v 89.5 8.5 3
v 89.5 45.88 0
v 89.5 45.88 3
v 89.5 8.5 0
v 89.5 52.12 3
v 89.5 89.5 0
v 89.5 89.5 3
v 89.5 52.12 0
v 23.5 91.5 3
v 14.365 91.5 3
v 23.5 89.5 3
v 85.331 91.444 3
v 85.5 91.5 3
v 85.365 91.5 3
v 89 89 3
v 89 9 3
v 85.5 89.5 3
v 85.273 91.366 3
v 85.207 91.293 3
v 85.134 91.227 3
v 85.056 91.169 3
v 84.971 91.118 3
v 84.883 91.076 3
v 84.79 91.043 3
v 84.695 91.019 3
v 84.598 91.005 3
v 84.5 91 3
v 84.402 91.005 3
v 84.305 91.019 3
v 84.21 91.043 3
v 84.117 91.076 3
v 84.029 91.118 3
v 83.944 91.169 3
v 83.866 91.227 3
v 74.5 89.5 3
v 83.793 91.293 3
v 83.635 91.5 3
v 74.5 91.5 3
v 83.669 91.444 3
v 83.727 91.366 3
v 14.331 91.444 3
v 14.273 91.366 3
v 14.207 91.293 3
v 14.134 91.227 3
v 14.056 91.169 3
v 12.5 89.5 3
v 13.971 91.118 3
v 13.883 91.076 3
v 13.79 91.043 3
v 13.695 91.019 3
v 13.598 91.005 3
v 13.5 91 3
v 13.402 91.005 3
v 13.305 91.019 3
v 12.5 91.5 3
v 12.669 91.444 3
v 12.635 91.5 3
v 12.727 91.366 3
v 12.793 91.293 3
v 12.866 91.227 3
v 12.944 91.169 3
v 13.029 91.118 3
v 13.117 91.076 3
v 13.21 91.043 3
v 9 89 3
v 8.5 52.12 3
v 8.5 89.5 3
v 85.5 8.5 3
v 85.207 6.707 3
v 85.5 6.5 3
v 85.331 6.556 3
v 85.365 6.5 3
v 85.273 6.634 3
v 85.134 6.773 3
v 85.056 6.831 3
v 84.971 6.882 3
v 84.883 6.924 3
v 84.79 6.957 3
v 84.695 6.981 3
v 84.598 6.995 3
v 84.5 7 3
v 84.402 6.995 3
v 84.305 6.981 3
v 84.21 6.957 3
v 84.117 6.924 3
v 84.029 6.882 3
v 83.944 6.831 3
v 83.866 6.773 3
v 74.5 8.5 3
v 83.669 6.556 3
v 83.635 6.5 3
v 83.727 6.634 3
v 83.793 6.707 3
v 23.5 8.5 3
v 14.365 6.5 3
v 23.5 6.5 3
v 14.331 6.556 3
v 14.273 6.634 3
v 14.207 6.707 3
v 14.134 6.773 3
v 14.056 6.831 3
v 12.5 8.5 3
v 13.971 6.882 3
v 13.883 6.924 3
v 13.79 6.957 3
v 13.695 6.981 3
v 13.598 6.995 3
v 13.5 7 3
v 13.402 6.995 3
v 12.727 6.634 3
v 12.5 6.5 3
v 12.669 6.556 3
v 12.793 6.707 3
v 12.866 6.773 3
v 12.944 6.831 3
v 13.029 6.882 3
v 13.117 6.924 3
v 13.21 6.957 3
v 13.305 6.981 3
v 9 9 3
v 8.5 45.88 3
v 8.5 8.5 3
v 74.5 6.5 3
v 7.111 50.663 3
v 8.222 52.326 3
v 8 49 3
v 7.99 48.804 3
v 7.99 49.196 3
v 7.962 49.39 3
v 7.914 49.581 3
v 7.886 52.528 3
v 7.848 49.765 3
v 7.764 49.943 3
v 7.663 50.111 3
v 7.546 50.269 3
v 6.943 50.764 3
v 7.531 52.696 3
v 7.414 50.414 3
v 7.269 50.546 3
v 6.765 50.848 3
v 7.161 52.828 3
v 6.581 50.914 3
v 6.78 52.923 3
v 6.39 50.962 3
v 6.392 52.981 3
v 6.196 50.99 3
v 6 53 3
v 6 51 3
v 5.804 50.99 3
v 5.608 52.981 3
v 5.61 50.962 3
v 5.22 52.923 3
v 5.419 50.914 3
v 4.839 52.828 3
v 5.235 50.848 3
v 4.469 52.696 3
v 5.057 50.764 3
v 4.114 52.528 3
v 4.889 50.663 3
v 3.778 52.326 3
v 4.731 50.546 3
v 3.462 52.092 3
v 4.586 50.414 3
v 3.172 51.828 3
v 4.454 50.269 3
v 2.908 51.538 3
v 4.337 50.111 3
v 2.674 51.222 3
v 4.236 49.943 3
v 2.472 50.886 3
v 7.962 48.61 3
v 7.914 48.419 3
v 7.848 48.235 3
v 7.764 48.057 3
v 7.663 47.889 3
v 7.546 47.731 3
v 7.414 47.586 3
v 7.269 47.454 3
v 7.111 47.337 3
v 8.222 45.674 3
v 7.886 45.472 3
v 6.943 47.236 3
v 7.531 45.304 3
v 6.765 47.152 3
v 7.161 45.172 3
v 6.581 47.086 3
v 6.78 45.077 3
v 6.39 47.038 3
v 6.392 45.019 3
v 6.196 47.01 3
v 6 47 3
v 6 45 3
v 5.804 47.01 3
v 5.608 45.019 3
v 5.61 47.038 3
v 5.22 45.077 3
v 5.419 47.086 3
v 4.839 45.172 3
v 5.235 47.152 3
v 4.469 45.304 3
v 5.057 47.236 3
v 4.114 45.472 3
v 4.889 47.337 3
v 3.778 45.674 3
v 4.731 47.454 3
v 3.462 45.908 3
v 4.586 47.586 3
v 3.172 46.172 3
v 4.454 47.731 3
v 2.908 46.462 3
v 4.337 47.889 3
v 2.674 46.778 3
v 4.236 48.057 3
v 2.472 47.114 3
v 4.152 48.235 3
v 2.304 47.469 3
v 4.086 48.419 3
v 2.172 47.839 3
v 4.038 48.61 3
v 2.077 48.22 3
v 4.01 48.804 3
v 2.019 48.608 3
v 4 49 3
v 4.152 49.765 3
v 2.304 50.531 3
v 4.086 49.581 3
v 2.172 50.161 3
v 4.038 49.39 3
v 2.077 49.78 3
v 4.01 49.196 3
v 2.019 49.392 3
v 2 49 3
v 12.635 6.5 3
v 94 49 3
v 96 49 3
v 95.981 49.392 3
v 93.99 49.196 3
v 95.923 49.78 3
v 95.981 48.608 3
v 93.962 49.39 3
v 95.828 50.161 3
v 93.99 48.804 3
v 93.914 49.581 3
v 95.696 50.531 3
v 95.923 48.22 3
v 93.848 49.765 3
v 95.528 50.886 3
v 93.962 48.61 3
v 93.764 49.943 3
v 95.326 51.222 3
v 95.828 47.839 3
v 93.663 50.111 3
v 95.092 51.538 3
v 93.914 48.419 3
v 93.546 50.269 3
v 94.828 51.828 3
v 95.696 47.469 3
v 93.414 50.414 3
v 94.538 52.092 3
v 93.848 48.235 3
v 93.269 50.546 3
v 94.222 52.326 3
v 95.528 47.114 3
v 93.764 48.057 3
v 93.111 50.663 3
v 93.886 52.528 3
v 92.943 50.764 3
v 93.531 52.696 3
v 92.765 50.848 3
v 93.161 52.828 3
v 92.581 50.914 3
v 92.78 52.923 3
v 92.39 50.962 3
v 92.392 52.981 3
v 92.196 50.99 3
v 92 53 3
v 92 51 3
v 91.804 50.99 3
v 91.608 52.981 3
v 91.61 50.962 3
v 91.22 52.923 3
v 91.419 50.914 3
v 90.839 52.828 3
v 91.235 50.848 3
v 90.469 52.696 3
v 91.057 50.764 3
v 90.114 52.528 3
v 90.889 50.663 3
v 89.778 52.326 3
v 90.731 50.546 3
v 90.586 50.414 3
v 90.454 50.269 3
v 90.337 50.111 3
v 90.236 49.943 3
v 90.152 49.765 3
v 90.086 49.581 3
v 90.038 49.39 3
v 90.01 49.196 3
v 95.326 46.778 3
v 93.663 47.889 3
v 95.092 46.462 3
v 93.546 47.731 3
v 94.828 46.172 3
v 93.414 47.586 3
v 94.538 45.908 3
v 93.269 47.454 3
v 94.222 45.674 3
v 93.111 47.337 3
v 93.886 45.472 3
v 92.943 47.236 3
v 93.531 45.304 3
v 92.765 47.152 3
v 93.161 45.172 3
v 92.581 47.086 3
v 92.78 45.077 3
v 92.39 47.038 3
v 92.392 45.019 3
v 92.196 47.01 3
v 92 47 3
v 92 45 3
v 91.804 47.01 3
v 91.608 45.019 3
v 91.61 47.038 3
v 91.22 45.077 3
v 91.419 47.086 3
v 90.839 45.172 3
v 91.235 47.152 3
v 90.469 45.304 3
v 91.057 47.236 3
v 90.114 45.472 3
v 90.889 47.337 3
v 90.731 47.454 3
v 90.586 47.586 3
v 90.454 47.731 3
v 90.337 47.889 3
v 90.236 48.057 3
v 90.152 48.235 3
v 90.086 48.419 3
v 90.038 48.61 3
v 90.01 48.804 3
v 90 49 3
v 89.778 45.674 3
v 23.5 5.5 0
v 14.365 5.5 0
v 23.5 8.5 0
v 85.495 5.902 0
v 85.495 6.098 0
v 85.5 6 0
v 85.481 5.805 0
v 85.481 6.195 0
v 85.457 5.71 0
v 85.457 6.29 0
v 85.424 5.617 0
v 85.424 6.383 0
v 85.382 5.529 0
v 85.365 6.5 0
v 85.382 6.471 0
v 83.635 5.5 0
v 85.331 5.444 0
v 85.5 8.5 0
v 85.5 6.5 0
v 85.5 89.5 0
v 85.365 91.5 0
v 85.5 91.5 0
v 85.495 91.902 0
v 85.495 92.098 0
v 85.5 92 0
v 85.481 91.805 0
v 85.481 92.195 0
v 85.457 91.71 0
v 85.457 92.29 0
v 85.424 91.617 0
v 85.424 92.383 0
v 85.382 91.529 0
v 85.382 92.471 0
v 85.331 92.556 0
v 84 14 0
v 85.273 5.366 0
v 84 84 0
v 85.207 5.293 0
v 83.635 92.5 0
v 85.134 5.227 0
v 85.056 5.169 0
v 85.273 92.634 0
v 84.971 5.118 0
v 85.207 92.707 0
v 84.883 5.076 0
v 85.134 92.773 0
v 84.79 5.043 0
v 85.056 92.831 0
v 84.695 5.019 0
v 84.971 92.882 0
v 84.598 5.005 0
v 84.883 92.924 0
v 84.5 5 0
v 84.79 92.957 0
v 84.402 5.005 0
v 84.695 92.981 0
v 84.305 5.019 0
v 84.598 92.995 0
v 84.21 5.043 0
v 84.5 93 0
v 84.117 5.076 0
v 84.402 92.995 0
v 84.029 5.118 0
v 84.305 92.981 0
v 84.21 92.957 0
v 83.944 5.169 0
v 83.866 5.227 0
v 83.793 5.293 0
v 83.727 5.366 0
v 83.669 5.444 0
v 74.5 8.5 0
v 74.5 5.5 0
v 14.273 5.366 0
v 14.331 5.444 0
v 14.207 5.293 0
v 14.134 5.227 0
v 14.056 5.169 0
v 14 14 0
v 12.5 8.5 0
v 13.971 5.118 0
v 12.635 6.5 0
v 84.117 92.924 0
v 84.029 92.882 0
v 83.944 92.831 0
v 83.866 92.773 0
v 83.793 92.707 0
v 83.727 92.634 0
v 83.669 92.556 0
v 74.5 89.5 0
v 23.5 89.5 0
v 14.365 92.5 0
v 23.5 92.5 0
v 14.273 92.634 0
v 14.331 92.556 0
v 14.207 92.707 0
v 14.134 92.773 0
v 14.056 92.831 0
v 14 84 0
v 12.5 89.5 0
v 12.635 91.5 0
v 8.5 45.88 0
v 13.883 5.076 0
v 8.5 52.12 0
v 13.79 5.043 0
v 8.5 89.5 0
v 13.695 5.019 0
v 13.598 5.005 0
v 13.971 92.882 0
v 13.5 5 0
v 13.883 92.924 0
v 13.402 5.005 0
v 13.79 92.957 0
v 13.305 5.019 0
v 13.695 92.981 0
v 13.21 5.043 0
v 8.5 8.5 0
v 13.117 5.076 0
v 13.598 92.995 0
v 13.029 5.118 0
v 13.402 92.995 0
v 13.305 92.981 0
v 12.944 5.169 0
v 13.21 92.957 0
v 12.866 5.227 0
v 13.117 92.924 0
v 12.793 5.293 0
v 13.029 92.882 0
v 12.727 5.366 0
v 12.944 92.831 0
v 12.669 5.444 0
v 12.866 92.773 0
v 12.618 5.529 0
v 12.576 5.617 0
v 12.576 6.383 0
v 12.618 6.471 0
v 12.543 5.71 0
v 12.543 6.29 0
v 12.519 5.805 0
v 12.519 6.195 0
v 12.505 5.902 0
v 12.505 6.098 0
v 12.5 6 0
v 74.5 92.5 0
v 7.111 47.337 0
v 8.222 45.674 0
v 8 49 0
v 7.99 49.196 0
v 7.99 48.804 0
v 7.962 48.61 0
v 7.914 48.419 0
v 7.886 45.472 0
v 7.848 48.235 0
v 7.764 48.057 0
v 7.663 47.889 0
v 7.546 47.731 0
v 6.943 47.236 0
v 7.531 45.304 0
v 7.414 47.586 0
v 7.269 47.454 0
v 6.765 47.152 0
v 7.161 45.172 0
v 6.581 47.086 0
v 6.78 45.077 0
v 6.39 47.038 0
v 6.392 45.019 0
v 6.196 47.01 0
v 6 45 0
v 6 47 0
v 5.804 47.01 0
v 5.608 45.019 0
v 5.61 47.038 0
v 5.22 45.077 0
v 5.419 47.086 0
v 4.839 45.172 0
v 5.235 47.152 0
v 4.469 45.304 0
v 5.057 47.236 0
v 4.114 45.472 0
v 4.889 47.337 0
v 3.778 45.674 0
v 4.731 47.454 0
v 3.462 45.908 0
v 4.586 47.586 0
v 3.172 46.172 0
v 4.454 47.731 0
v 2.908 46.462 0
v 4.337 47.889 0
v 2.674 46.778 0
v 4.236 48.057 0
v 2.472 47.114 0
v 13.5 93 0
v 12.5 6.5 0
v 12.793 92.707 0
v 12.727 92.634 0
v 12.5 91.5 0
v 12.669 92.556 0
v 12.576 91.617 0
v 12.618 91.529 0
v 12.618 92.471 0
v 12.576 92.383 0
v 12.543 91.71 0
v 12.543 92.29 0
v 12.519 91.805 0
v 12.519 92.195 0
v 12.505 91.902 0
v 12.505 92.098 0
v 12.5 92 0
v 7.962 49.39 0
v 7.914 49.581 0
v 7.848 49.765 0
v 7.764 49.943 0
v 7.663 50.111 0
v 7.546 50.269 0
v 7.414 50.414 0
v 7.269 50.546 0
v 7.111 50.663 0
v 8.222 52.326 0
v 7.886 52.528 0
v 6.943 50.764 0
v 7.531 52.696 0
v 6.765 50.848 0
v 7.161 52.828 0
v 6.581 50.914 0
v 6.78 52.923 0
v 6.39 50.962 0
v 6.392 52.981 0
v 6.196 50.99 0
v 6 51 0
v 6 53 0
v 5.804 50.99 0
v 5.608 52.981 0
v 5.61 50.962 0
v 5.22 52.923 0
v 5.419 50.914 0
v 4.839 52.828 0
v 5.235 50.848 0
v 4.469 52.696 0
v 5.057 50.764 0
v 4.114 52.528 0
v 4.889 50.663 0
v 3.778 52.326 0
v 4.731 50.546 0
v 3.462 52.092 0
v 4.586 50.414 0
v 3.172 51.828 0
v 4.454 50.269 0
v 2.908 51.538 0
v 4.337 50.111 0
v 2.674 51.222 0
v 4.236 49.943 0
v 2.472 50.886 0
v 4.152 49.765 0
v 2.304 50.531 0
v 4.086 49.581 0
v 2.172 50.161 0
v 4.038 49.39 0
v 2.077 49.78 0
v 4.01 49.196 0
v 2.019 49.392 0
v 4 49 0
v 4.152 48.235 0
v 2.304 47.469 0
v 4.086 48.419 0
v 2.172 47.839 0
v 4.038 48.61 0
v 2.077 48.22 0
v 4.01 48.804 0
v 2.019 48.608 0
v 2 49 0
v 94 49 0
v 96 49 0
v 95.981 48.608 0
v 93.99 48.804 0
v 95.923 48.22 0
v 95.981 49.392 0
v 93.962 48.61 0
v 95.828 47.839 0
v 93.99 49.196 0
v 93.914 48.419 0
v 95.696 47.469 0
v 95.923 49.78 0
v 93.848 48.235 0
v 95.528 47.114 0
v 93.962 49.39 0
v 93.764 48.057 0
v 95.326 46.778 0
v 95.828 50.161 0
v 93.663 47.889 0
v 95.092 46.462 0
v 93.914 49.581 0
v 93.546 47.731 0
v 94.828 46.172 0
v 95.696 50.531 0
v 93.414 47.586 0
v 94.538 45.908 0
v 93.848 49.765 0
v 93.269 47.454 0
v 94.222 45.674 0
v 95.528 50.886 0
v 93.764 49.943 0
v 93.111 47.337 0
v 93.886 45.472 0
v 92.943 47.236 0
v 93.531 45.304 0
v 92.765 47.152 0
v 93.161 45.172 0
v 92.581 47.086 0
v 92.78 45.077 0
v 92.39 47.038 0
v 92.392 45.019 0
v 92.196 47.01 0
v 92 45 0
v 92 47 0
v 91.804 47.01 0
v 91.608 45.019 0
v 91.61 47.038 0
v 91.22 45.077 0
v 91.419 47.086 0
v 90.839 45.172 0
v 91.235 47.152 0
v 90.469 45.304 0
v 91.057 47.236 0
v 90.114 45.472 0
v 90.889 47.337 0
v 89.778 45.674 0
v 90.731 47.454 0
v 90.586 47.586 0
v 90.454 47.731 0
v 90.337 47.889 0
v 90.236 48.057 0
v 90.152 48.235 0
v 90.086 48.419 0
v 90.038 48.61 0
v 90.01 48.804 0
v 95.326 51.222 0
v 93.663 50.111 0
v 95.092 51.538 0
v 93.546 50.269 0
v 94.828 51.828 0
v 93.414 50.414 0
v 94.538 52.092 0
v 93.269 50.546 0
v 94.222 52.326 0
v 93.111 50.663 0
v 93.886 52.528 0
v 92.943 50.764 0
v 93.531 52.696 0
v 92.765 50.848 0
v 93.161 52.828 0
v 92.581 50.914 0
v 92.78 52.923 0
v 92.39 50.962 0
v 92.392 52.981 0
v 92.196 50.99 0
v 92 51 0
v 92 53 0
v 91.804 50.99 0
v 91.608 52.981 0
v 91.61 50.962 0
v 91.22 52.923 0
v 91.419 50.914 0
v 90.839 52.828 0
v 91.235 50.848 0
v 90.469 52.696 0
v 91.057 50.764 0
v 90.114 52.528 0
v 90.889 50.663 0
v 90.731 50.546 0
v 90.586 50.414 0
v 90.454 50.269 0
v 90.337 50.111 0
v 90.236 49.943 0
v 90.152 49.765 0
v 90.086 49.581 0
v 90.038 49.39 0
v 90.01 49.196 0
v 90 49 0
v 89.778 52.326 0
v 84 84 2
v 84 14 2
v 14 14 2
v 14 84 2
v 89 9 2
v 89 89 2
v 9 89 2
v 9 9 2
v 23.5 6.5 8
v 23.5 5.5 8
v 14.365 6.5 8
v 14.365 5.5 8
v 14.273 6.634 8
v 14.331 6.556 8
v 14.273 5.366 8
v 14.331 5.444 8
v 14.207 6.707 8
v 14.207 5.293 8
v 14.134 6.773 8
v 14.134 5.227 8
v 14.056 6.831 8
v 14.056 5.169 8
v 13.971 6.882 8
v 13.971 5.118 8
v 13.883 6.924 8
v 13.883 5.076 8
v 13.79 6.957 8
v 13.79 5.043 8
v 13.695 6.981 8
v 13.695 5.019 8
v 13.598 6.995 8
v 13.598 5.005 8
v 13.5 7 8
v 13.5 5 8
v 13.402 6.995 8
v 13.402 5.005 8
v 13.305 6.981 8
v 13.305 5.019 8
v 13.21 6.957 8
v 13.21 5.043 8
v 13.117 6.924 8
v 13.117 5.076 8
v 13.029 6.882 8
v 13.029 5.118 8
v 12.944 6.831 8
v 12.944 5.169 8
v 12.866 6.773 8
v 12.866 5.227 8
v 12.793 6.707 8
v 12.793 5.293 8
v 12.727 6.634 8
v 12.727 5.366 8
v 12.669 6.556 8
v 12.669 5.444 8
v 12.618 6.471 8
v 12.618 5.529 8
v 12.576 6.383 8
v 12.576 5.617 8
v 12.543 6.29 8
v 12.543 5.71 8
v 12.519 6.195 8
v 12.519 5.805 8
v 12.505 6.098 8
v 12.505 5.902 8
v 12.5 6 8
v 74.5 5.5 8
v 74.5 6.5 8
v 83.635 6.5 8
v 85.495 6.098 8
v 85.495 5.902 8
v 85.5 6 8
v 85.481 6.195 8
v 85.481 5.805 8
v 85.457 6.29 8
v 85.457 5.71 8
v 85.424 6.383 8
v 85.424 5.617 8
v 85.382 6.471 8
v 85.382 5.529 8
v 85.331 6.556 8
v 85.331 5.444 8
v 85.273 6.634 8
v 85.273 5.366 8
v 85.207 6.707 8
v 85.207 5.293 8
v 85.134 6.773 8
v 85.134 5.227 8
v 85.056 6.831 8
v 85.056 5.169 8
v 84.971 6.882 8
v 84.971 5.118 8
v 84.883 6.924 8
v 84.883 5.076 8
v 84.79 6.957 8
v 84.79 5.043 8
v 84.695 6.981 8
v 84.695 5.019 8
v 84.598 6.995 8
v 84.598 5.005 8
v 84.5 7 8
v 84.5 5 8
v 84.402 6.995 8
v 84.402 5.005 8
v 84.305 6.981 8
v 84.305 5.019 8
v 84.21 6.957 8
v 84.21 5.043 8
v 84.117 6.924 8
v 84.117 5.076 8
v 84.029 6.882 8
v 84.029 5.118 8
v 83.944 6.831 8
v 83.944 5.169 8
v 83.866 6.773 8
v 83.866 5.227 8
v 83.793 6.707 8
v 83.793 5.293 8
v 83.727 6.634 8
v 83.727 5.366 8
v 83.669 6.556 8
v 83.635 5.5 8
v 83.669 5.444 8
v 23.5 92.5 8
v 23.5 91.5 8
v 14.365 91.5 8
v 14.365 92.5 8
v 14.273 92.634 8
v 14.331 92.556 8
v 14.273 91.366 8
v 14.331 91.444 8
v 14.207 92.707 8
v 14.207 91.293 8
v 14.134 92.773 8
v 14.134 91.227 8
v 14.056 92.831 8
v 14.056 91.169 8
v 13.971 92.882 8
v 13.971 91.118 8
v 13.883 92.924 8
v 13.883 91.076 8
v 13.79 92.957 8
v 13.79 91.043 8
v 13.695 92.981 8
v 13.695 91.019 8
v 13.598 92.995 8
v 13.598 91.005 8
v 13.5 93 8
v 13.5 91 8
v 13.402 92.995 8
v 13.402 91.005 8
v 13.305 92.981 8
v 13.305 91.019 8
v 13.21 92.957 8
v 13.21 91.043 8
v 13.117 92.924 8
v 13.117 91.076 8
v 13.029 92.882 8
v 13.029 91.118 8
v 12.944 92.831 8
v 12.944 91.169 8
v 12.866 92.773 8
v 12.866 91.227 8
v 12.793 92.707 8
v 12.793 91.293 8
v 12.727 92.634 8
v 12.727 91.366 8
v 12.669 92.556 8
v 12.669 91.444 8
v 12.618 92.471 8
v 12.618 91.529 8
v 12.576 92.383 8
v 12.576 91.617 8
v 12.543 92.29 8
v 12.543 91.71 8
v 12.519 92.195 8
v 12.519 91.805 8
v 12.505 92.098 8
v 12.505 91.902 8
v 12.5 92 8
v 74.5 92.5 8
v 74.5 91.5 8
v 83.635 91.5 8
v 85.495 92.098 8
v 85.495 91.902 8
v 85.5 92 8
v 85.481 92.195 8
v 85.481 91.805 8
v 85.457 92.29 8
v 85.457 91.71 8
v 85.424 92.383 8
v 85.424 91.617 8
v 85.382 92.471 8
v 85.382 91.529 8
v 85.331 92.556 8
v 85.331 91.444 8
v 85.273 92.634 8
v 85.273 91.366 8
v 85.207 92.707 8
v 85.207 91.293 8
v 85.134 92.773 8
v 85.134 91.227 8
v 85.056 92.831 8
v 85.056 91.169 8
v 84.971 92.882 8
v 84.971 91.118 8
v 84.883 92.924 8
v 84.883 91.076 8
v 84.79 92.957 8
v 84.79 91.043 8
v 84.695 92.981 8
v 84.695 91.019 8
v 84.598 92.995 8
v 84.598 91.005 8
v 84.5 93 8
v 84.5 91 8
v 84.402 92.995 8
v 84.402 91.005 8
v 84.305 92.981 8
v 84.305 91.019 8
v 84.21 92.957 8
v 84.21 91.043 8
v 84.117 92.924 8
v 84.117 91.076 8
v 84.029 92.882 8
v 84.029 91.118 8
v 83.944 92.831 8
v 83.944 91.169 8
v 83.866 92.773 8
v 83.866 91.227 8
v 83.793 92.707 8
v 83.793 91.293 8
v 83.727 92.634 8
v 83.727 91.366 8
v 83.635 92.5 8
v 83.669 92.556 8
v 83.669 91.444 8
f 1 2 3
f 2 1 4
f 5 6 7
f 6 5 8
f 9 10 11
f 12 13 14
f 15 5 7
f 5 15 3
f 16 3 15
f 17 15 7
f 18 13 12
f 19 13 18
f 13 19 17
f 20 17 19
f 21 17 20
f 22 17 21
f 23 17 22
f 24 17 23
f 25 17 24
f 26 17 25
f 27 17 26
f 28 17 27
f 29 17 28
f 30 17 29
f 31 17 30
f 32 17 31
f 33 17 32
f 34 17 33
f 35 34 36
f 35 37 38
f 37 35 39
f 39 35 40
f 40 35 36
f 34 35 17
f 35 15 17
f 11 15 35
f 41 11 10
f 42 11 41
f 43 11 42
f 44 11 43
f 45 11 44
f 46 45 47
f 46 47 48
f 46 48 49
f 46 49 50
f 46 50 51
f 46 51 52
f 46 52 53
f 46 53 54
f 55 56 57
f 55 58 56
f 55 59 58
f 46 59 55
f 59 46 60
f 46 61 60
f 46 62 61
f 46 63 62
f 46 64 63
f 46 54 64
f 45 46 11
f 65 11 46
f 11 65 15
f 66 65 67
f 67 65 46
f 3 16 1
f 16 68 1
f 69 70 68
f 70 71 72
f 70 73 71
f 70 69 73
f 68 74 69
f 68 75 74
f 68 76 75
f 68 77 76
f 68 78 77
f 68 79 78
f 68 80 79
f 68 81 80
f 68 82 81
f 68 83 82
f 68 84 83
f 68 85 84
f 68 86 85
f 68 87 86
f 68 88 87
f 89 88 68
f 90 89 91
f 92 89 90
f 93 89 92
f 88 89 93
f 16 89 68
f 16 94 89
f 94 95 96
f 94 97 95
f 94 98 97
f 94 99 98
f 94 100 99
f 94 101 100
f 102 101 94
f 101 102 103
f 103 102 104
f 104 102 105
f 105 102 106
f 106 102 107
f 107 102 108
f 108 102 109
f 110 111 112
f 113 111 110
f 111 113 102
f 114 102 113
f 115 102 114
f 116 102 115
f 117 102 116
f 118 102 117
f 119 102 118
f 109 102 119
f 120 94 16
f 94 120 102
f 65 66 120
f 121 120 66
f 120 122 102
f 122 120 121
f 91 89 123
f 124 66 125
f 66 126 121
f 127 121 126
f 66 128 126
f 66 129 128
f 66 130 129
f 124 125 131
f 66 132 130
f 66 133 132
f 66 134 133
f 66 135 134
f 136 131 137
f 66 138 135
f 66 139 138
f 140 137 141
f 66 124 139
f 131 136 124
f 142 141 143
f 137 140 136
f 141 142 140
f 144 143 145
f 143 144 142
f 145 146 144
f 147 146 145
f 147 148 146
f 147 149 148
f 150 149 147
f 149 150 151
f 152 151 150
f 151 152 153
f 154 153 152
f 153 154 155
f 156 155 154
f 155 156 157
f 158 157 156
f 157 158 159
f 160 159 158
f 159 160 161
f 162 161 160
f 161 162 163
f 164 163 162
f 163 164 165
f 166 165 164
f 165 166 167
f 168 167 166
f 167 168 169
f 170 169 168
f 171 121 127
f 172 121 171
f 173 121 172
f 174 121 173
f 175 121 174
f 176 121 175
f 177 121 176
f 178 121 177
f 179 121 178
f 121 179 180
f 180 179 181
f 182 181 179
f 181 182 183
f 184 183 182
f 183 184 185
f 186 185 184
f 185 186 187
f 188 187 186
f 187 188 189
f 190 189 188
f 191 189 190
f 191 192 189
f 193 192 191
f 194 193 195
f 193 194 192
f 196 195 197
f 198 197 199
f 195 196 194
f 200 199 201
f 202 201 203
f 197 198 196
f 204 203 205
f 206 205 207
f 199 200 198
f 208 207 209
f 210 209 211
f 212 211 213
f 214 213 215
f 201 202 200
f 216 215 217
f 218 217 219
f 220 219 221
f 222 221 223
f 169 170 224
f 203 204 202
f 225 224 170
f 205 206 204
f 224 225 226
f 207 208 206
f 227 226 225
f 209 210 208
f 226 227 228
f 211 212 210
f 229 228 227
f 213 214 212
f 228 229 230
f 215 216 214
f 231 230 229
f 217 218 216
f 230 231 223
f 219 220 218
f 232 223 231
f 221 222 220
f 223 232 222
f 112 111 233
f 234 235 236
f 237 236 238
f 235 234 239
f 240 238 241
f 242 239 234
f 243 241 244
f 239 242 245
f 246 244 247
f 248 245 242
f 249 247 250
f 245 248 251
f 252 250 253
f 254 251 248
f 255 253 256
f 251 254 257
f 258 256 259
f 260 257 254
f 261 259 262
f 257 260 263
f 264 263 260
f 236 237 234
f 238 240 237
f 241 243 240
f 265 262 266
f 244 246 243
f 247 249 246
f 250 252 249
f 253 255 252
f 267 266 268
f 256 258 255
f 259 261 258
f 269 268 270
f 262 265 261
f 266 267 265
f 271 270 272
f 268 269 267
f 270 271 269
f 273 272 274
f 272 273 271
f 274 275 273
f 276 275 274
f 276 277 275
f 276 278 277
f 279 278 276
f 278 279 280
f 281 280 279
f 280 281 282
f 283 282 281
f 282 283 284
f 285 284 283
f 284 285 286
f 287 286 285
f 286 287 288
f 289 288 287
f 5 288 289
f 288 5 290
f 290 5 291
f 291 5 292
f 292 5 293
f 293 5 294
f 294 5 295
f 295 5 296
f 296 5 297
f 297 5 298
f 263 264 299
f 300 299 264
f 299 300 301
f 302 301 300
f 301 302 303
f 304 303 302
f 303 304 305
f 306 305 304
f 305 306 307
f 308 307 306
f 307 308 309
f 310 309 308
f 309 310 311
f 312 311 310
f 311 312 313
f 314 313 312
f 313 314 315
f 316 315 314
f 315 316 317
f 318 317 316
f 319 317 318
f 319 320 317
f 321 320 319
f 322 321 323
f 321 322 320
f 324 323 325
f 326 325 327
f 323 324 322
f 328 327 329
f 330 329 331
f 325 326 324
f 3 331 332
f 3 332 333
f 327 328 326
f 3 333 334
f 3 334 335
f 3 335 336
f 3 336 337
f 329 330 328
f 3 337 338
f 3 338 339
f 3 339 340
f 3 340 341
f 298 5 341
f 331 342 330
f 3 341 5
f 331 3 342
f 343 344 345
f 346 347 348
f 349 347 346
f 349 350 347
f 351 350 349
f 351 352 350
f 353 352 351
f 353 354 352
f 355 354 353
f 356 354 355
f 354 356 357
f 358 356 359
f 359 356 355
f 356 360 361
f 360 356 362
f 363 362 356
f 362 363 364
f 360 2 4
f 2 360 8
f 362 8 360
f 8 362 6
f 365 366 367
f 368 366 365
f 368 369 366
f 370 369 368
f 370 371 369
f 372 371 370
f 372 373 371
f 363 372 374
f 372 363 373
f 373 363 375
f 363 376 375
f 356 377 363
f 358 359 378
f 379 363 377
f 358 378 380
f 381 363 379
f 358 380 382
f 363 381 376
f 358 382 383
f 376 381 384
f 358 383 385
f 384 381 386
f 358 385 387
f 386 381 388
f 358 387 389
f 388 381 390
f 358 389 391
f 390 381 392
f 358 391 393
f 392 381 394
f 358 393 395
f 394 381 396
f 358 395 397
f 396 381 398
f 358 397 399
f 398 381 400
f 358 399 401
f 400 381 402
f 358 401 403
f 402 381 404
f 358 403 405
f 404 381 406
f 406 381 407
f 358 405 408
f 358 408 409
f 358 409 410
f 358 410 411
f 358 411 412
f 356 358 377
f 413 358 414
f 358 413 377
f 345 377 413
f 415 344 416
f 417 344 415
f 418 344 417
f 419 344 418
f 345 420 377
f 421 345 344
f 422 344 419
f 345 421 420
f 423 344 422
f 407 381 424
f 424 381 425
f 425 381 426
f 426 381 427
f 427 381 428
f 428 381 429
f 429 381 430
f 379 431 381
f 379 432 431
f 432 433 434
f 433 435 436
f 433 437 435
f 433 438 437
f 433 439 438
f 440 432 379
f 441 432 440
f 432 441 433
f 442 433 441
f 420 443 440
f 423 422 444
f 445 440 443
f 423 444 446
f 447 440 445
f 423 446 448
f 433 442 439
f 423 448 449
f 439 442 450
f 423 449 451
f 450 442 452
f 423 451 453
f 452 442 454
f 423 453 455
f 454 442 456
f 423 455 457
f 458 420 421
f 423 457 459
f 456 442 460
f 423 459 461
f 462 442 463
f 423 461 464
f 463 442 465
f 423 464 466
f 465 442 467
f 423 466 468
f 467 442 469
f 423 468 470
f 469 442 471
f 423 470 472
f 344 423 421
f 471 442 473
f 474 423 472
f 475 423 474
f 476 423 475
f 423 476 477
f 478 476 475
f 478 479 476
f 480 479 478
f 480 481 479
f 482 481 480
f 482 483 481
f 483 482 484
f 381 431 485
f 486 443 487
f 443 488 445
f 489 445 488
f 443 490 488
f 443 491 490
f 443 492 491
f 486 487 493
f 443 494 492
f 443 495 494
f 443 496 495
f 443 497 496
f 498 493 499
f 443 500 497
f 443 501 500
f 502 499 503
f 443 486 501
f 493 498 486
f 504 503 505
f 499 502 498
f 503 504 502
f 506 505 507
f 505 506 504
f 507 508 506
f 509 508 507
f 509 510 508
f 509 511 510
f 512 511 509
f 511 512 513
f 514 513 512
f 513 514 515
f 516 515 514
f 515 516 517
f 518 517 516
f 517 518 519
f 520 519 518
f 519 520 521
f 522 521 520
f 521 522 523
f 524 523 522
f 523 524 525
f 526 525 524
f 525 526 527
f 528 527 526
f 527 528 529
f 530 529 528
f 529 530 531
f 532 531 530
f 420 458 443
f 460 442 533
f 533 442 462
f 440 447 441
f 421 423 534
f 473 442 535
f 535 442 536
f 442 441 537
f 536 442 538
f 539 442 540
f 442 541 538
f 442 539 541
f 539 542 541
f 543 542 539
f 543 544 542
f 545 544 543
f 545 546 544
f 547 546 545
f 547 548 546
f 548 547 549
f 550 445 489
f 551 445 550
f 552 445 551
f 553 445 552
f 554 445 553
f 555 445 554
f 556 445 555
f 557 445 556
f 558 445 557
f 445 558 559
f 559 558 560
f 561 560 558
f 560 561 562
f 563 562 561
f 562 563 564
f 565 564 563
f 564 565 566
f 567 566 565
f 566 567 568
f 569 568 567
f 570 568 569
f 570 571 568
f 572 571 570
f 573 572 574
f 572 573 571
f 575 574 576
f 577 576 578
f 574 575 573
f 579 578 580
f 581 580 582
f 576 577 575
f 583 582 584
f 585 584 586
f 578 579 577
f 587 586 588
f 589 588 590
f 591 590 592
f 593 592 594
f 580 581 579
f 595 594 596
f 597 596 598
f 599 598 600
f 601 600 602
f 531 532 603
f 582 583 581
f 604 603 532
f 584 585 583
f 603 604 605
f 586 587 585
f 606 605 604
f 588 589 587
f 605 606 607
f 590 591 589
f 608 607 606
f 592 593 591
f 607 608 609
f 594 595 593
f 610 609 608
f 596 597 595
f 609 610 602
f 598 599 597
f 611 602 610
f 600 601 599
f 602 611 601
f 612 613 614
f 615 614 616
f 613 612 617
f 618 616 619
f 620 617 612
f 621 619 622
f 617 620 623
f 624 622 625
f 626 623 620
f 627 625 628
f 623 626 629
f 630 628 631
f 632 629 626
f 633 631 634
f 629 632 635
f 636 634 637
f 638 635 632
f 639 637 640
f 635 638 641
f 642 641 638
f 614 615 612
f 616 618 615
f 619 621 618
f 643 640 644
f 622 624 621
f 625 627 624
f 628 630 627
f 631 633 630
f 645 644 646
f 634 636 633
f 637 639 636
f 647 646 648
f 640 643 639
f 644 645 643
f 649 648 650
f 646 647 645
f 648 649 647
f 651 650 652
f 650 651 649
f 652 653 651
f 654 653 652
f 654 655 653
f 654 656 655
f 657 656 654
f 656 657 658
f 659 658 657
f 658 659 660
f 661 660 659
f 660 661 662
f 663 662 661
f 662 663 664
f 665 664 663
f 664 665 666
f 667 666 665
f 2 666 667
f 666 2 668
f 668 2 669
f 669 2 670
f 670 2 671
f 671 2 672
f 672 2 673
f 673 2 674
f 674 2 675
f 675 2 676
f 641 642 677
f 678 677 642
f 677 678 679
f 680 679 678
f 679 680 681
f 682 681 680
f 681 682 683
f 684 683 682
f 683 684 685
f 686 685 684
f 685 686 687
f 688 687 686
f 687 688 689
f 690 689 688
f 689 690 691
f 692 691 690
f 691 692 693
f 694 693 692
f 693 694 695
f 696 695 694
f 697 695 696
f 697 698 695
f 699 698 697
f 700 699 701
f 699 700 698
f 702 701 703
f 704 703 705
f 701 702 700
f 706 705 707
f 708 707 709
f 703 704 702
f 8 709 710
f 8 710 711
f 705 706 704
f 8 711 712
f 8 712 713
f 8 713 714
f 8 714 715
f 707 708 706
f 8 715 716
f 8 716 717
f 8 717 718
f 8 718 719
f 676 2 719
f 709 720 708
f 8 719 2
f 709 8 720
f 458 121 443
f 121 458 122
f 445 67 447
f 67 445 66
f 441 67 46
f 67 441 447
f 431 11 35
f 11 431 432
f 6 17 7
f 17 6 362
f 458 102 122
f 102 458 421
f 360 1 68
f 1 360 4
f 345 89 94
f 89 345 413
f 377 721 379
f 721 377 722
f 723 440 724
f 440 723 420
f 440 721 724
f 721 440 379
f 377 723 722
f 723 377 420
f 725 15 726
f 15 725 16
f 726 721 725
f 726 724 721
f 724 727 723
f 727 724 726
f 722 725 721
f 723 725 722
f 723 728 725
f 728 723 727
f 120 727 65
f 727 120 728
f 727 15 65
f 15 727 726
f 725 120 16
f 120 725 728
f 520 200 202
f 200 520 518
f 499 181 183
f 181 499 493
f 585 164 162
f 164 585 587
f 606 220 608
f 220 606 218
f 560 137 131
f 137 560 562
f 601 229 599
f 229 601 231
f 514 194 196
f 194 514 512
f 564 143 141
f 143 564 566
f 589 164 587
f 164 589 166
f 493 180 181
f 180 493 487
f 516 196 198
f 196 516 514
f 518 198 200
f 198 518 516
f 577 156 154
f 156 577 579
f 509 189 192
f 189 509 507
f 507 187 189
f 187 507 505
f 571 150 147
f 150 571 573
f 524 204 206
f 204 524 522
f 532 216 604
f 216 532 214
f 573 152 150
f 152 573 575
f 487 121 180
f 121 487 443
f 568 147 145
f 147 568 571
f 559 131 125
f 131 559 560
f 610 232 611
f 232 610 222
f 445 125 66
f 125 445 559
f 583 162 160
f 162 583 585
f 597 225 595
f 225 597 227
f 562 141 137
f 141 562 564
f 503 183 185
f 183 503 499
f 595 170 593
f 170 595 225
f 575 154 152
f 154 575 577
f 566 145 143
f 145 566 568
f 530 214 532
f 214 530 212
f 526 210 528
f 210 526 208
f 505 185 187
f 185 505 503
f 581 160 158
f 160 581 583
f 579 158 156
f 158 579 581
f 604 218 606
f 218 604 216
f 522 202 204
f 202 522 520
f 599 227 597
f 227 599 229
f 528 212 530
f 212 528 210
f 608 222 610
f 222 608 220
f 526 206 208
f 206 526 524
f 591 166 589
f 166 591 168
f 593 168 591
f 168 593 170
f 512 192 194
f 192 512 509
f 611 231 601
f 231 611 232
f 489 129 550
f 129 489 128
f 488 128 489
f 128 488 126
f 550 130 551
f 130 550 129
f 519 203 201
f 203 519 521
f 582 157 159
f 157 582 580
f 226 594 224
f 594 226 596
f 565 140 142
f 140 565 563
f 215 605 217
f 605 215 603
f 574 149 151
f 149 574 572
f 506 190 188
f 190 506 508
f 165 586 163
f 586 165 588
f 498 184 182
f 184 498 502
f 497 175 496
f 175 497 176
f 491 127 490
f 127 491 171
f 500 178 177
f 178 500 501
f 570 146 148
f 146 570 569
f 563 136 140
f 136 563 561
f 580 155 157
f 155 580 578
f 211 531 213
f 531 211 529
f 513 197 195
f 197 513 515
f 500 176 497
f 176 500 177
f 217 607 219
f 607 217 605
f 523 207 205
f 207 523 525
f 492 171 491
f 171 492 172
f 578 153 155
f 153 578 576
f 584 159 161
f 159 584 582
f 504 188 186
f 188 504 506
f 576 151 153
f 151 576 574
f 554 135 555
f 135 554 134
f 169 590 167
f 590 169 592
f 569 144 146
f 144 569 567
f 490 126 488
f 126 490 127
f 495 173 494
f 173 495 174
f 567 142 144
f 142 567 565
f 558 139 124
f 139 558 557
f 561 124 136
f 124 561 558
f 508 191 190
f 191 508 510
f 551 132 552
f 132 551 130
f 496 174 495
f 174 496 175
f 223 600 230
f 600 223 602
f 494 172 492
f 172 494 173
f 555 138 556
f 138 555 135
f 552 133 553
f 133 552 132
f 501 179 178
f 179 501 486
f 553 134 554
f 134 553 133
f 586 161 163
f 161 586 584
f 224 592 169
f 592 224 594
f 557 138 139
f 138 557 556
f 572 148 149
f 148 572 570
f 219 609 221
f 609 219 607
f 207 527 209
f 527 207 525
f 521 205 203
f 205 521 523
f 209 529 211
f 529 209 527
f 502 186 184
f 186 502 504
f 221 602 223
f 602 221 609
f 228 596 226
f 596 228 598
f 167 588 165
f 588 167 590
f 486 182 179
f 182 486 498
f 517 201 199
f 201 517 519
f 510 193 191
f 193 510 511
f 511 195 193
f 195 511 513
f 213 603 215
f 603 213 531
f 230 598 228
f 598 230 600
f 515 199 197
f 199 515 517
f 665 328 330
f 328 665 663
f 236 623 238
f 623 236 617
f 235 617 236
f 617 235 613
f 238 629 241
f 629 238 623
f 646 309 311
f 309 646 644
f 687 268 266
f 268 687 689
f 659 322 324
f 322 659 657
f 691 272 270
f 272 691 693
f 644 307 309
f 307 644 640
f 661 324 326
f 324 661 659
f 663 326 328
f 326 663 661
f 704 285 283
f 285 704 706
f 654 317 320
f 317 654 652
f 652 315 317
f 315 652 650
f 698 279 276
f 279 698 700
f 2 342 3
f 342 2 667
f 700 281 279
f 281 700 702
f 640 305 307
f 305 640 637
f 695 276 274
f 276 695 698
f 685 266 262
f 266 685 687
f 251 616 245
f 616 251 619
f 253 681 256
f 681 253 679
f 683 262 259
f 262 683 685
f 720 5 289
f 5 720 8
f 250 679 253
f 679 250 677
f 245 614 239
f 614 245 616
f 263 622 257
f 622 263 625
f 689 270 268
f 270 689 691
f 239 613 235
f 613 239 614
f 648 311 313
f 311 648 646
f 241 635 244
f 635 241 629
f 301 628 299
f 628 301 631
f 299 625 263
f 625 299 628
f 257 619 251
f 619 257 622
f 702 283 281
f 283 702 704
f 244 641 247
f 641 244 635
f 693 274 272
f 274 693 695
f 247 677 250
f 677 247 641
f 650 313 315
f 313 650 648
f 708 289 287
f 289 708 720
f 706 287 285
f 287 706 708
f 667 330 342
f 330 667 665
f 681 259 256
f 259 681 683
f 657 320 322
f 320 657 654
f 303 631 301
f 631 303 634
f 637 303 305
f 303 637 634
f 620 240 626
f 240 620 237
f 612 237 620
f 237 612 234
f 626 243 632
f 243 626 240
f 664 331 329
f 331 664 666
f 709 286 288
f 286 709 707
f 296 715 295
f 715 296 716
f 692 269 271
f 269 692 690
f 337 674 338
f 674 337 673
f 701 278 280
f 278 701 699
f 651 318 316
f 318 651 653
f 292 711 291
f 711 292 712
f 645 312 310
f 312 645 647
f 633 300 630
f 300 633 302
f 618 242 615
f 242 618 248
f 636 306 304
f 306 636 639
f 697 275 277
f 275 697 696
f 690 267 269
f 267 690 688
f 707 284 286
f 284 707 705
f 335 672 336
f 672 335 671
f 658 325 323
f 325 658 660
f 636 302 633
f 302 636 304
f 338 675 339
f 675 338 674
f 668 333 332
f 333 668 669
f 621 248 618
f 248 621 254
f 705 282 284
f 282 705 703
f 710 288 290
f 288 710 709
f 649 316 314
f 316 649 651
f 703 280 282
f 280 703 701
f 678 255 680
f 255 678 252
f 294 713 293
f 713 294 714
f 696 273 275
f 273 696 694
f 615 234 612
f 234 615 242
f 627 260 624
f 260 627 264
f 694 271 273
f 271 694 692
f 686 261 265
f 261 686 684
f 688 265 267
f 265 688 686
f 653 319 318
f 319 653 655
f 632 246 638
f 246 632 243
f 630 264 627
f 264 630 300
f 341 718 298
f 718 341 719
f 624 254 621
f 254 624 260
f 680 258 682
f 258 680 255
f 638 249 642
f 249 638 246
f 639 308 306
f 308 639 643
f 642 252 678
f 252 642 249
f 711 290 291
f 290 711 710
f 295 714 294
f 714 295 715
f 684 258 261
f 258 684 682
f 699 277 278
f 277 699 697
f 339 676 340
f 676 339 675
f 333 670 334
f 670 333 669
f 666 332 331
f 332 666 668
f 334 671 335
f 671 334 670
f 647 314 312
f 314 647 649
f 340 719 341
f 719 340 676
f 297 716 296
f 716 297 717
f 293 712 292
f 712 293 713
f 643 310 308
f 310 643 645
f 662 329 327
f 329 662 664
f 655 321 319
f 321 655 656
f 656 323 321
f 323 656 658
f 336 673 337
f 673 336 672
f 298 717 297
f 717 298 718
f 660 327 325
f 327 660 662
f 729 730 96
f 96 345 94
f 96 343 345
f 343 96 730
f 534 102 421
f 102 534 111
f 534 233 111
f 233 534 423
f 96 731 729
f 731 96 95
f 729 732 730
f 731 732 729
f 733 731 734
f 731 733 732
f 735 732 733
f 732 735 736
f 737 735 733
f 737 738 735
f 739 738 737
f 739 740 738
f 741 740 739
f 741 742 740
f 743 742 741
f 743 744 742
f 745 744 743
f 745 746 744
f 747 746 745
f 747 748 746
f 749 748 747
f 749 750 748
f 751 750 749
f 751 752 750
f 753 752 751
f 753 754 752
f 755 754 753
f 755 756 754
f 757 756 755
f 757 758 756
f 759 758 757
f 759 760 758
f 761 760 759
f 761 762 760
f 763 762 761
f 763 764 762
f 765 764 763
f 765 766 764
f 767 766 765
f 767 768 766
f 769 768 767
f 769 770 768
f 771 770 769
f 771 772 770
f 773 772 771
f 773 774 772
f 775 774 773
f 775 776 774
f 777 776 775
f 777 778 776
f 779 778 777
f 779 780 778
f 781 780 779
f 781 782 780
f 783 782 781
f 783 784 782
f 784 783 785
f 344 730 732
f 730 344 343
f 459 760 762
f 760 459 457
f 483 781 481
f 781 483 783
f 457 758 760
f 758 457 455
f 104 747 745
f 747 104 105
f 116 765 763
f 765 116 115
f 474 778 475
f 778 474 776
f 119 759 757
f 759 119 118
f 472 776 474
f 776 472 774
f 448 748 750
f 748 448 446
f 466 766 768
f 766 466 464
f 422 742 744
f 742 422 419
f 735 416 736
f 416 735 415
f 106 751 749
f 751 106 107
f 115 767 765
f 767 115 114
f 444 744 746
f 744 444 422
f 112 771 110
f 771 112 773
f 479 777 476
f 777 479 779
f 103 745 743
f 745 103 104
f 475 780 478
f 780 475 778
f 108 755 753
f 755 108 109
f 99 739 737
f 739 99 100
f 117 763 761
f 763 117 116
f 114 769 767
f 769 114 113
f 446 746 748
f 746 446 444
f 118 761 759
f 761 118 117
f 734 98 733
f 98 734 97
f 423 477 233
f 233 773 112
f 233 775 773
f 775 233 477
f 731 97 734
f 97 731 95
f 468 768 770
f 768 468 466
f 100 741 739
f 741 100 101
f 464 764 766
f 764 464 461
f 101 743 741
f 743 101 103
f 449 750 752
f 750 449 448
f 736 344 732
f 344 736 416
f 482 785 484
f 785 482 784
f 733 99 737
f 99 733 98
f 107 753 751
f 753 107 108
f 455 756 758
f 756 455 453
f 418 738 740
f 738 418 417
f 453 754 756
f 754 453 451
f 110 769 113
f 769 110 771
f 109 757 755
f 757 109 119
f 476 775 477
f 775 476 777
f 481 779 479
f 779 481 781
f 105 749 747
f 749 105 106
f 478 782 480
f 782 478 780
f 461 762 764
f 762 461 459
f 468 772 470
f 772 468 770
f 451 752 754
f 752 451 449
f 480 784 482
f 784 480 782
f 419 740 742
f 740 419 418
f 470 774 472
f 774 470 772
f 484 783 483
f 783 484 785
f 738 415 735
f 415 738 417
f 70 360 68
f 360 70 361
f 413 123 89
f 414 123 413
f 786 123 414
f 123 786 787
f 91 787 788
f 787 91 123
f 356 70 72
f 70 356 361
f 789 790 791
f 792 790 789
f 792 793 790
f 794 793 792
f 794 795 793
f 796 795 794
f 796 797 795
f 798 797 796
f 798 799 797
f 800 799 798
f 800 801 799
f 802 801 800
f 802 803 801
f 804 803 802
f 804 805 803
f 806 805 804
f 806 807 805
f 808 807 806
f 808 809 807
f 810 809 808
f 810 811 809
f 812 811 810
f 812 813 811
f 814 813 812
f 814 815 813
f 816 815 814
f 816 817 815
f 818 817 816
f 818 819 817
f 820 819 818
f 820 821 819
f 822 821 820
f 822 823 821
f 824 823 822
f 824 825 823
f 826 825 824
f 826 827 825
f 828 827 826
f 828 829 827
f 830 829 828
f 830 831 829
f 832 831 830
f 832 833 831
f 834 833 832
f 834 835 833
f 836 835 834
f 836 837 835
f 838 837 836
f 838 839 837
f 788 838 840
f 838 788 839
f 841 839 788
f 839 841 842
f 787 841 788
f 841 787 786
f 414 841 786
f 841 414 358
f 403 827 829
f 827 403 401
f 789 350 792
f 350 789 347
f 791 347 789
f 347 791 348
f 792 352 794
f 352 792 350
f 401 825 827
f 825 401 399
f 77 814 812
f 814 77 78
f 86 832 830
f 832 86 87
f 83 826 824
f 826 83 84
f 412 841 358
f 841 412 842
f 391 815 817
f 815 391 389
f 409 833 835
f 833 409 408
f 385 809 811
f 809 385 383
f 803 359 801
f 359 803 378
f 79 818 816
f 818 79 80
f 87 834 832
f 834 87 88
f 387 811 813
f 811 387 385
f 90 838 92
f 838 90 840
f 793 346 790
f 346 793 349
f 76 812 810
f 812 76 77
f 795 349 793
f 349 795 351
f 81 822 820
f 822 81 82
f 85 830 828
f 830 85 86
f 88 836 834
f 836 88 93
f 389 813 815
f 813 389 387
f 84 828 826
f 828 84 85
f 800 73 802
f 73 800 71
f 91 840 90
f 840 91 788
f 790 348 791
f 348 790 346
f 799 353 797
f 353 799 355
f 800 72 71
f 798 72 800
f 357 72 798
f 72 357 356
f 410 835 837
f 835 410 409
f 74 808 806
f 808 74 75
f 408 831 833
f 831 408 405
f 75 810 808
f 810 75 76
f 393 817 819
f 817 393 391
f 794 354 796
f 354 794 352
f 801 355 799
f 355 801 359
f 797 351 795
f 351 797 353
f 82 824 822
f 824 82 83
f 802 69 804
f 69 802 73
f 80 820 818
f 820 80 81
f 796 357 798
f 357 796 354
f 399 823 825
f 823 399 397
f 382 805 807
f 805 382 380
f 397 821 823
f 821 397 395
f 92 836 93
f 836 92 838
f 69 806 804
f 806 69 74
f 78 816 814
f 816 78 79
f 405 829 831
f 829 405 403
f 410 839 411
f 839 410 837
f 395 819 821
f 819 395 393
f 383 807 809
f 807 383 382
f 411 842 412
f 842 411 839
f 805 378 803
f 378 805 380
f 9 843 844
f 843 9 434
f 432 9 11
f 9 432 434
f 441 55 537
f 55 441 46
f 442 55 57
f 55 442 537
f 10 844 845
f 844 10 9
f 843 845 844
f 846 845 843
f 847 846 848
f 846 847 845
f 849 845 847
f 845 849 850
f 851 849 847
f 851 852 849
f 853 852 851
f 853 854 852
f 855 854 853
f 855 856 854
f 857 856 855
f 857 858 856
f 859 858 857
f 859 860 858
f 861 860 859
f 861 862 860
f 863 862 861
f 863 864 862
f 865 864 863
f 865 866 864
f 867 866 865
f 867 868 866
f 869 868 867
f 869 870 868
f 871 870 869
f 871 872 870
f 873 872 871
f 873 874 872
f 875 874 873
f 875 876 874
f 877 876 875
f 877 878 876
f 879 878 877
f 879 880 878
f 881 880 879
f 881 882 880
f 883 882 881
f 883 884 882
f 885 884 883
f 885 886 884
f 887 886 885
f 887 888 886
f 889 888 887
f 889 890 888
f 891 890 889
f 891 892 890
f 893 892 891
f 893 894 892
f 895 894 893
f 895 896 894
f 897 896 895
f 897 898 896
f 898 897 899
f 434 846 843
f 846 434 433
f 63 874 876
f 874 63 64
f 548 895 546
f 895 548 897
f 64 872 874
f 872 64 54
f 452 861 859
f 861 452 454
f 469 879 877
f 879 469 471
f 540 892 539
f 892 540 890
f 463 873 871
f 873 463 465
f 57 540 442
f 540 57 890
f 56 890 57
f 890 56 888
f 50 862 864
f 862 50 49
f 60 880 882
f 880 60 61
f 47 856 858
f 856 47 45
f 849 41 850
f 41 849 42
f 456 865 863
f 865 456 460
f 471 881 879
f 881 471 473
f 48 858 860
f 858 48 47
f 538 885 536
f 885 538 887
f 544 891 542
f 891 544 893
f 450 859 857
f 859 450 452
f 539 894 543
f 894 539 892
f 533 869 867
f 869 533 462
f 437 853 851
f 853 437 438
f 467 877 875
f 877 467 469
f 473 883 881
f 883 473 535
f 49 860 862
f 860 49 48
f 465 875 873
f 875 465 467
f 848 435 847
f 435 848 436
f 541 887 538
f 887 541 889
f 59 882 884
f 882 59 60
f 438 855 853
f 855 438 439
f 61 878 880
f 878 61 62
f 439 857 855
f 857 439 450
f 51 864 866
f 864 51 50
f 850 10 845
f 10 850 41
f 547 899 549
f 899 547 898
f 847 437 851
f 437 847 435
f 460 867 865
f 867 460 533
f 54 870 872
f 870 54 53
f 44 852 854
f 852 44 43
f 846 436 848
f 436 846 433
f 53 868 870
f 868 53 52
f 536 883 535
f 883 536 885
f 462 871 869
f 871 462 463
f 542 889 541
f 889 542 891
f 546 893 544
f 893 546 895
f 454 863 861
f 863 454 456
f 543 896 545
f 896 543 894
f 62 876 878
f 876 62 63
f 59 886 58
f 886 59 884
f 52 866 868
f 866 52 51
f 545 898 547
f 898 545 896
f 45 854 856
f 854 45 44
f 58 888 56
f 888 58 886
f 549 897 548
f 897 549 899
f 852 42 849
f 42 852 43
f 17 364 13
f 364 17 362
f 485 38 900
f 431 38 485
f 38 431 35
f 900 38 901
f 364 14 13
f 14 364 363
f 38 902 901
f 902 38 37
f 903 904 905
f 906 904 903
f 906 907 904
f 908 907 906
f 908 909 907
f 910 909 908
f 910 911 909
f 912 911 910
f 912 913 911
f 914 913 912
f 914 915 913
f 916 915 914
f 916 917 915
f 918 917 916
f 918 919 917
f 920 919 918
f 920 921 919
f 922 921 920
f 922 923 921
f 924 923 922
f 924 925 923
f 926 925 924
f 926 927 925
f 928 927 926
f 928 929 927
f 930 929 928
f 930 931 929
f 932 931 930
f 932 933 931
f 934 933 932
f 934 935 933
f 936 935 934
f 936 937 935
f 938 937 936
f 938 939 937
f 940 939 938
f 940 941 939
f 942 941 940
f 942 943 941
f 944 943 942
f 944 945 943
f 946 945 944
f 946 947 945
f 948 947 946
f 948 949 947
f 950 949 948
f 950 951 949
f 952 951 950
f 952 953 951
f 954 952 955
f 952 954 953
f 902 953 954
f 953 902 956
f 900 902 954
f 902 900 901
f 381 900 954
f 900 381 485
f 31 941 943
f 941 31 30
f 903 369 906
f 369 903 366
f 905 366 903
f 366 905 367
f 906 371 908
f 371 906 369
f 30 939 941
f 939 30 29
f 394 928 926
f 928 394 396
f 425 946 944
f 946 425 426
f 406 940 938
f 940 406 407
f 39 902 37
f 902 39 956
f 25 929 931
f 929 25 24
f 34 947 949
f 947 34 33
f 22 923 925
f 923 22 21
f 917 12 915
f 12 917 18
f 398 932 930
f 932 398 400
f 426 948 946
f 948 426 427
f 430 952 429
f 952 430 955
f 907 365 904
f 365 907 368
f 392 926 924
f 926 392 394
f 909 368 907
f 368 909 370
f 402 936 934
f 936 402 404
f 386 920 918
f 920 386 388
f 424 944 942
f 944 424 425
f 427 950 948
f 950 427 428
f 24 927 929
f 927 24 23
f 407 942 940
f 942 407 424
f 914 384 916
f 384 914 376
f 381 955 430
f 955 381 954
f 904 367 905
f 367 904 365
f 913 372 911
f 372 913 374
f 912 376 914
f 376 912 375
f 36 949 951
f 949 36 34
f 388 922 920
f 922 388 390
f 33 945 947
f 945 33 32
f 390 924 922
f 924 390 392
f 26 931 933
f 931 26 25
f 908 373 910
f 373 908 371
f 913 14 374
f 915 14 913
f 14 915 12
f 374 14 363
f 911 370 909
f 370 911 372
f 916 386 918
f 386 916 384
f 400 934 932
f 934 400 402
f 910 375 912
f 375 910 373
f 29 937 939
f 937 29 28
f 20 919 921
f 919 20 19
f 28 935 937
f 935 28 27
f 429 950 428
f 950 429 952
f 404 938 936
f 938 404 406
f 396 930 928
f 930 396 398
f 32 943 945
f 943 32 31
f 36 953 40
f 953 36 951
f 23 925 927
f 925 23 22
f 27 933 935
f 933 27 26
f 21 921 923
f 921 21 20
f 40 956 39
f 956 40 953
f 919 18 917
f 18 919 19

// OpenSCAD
// ========================
// Parameters
// ========================

// Case (2 mm shorter than the bottom, aka 1 mm on each side)
case_width = 98;
case_height = 3;

// Outer cylinder
outer_r = 4;
outer_h = case_height;

// Inner hole
hole_r = 2;
hole_h = case_height;

// Hook's height
hook_h = 8;

// increase for smoother cone ($fn)
segments = 64;

// smooth corners
$fn = segments;

// ========================
// Cover for the NeoPixel panel
// ========================
module panel_cover() {
    difference() {

        translate([8.5, 8.5, 0])
            cube([81, 81, case_height]);

        // Bezel to hold the NeoPixel panel

        translate([14, 14, 0])
            cube([70, 70, case_height]);

        // Field for the NeoPixel panel

        translate([9, 9, case_height-1])
            cube([80, 80, 1]);

    }
}

// ========================
// Holders for the NeoPixel panel
// ========================
module panel_holders() {
    difference() {

    union() {
        // Middle left
        translate([2, case_width/2-outer_r, 0])
                mounting_hole_round();

        // Middle right
        translate([case_width-2*outer_r-2, case_width/2-outer_r, 0])
                mounting_hole_round();
        }

        translate([8.5, 8.5, 0])
            cube([81, 81, case_height]);
    }
}
    
// ========================
// Mounting holes
// ========================
module mounting_hole_round() {
    // Position at start
    translate([outer_r, outer_r, 0]) {
        difference() {
            // Outer cylinder
            cylinder(h = outer_h, r = outer_r, $fn = segments);

            // Inner hole
            translate([0, 0, outer_h-hole_h])
                cylinder(h = hole_h, r = hole_r, $fn = segments);
        }
    }
}

// ========================
// Cover with holders
// ========================

union() {
    panel_cover();
    panel_holders();

    // Hooks

    translate([12.5, 6.5, 0])
        cube([11, 2, case_height]);
    translate([13.5, 5.5, 0])
        cube([10,1,hook_h]);
    translate([13.5, 6, 0])
        cylinder(h = hook_h, r = 1);

    translate([case_width-2*outer_r-2-13.5, 6.5, 0])
        cube([11, 2, case_height]);
    translate([case_width-2*outer_r-2-13.5, 5.5, 0])
        cube([10,1,hook_h]);
    translate([case_width-2*outer_r-2-13.5+10, 6, 0])
        cylinder(h = hook_h, r = 1);

    translate([12.5, 81+2+6.5, 0])
        cube([11, 2, case_height]);
    translate([13.5, 81+5+5.5, 0])
        cube([10,1,hook_h]);
    translate([13.5, 81+5+6, 0])
        cylinder(h = hook_h, r = 1);

    translate([case_width-2*outer_r-2-13.5, 81+2+6.5, 0])
        cube([11, 2, case_height]);
    translate([case_width-2*outer_r-2-13.5, 81+5+5.5, 0])
        cube([10,1,hook_h]);
    translate([case_width-2*outer_r-2-13.5+10, 81+5+6, 0])
        cylinder(h = hook_h, r = 1);
}
